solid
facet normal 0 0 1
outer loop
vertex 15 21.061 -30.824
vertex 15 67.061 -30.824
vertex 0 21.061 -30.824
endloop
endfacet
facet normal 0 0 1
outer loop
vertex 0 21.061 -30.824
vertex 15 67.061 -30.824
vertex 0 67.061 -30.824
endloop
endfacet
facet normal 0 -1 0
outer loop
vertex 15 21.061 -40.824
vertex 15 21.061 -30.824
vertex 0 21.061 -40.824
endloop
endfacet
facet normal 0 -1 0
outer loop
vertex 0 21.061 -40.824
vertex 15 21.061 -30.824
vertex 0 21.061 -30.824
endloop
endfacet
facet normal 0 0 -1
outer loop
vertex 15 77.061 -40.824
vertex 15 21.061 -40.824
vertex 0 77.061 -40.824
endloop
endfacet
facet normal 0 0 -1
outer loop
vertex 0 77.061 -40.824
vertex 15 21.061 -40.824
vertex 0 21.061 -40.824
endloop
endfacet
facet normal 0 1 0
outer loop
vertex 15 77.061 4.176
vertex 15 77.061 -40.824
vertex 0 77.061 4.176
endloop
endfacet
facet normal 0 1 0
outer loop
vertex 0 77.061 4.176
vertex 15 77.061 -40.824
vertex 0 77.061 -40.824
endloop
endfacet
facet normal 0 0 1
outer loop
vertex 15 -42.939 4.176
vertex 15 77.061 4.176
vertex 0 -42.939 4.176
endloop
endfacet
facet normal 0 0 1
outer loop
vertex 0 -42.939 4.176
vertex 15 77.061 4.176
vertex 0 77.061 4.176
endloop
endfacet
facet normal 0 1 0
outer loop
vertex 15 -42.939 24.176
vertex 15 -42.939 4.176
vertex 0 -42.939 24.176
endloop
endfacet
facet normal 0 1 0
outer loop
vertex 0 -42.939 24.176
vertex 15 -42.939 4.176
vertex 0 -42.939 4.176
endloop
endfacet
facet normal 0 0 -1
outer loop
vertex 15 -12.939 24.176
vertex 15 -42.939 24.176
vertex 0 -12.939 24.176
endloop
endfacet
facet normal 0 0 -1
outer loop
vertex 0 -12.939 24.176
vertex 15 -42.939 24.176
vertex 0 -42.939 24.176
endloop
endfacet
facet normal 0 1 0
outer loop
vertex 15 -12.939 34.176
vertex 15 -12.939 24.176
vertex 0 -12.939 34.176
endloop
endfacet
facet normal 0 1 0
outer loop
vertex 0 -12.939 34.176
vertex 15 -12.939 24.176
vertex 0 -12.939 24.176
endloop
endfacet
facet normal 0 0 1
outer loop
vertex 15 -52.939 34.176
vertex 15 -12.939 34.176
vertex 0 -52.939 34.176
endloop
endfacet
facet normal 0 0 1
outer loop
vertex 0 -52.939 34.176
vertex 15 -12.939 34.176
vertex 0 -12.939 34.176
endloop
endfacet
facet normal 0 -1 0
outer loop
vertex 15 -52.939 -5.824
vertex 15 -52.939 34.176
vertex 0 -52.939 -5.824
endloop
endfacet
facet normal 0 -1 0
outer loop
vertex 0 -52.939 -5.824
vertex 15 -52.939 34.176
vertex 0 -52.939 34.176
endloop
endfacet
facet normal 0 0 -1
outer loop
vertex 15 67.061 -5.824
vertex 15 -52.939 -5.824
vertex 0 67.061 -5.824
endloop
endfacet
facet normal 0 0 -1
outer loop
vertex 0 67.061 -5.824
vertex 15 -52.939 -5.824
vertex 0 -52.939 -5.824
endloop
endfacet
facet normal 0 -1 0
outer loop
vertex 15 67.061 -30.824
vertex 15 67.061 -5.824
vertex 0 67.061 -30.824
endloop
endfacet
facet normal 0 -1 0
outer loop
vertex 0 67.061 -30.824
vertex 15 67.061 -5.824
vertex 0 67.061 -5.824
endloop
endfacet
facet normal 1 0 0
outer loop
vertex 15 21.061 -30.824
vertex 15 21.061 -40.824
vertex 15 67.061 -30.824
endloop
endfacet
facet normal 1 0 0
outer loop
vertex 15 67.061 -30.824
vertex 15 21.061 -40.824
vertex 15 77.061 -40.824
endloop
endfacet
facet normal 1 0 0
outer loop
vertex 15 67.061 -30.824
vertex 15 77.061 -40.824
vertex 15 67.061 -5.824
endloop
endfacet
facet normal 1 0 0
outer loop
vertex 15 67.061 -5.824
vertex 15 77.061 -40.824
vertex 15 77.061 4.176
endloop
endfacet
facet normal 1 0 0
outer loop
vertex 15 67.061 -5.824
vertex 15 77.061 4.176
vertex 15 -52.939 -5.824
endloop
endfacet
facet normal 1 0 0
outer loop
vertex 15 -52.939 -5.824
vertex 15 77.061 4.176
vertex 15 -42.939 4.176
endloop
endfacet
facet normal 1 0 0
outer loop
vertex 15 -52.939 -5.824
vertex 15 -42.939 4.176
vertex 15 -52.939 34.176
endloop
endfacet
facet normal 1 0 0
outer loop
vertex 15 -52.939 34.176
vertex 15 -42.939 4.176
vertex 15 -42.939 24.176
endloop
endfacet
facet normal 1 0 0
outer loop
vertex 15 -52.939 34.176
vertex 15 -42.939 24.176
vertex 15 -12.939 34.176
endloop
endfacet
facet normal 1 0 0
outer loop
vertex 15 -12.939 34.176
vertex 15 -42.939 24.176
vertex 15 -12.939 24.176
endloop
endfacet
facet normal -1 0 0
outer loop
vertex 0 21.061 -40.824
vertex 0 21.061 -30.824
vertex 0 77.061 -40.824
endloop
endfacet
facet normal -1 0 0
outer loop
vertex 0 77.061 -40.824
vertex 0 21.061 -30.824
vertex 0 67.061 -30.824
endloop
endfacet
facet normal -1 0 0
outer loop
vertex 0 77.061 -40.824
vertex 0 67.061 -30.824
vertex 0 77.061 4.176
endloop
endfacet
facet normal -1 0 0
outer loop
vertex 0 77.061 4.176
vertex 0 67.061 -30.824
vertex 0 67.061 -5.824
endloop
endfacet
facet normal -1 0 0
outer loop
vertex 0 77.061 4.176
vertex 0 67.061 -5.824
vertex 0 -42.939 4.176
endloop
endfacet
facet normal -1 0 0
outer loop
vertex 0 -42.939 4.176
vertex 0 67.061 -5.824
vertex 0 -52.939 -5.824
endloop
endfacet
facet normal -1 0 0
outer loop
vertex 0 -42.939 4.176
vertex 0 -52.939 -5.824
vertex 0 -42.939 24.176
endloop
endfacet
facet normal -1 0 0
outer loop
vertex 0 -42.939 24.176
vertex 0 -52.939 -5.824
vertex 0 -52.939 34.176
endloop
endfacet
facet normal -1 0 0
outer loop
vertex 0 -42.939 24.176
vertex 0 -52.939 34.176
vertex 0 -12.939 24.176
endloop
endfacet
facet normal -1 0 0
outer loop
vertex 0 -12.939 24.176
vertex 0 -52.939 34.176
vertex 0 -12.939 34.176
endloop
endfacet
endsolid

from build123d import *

# Parameters (mm, degrees)
BOSS_EXTRUDE1_DEPTH = 15


with BuildPart() as part:
    # Sketch1 → Boss-Extrude1 (new body)
    with BuildSketch(Plane(origin=(0, 0, 0), x_dir=(0, 0, -1), z_dir=(1, 0, 0))):
        Polygon((30.824095604, 67.060925147), (30.824095604, 21.060925147), (40.824095604, 21.060925147), (40.824095604, 77.060925147), (-4.175904396, 77.060925147), (-4.175904396, -52.939074853), (5.824095604, -52.939074853), (5.824095604, 67.060925147), align=None)
        Polygon((-4.175904396, -52.939074853), (-4.175904396, -42.939074853), (-24.175904396, -42.939074853), (-24.175904396, -12.939074853), (-34.175904396, -12.939074853), (-34.175904396, -52.939074853), align=None)
    extrude(amount=BOSS_EXTRUDE1_DEPTH)


solid = part.part
